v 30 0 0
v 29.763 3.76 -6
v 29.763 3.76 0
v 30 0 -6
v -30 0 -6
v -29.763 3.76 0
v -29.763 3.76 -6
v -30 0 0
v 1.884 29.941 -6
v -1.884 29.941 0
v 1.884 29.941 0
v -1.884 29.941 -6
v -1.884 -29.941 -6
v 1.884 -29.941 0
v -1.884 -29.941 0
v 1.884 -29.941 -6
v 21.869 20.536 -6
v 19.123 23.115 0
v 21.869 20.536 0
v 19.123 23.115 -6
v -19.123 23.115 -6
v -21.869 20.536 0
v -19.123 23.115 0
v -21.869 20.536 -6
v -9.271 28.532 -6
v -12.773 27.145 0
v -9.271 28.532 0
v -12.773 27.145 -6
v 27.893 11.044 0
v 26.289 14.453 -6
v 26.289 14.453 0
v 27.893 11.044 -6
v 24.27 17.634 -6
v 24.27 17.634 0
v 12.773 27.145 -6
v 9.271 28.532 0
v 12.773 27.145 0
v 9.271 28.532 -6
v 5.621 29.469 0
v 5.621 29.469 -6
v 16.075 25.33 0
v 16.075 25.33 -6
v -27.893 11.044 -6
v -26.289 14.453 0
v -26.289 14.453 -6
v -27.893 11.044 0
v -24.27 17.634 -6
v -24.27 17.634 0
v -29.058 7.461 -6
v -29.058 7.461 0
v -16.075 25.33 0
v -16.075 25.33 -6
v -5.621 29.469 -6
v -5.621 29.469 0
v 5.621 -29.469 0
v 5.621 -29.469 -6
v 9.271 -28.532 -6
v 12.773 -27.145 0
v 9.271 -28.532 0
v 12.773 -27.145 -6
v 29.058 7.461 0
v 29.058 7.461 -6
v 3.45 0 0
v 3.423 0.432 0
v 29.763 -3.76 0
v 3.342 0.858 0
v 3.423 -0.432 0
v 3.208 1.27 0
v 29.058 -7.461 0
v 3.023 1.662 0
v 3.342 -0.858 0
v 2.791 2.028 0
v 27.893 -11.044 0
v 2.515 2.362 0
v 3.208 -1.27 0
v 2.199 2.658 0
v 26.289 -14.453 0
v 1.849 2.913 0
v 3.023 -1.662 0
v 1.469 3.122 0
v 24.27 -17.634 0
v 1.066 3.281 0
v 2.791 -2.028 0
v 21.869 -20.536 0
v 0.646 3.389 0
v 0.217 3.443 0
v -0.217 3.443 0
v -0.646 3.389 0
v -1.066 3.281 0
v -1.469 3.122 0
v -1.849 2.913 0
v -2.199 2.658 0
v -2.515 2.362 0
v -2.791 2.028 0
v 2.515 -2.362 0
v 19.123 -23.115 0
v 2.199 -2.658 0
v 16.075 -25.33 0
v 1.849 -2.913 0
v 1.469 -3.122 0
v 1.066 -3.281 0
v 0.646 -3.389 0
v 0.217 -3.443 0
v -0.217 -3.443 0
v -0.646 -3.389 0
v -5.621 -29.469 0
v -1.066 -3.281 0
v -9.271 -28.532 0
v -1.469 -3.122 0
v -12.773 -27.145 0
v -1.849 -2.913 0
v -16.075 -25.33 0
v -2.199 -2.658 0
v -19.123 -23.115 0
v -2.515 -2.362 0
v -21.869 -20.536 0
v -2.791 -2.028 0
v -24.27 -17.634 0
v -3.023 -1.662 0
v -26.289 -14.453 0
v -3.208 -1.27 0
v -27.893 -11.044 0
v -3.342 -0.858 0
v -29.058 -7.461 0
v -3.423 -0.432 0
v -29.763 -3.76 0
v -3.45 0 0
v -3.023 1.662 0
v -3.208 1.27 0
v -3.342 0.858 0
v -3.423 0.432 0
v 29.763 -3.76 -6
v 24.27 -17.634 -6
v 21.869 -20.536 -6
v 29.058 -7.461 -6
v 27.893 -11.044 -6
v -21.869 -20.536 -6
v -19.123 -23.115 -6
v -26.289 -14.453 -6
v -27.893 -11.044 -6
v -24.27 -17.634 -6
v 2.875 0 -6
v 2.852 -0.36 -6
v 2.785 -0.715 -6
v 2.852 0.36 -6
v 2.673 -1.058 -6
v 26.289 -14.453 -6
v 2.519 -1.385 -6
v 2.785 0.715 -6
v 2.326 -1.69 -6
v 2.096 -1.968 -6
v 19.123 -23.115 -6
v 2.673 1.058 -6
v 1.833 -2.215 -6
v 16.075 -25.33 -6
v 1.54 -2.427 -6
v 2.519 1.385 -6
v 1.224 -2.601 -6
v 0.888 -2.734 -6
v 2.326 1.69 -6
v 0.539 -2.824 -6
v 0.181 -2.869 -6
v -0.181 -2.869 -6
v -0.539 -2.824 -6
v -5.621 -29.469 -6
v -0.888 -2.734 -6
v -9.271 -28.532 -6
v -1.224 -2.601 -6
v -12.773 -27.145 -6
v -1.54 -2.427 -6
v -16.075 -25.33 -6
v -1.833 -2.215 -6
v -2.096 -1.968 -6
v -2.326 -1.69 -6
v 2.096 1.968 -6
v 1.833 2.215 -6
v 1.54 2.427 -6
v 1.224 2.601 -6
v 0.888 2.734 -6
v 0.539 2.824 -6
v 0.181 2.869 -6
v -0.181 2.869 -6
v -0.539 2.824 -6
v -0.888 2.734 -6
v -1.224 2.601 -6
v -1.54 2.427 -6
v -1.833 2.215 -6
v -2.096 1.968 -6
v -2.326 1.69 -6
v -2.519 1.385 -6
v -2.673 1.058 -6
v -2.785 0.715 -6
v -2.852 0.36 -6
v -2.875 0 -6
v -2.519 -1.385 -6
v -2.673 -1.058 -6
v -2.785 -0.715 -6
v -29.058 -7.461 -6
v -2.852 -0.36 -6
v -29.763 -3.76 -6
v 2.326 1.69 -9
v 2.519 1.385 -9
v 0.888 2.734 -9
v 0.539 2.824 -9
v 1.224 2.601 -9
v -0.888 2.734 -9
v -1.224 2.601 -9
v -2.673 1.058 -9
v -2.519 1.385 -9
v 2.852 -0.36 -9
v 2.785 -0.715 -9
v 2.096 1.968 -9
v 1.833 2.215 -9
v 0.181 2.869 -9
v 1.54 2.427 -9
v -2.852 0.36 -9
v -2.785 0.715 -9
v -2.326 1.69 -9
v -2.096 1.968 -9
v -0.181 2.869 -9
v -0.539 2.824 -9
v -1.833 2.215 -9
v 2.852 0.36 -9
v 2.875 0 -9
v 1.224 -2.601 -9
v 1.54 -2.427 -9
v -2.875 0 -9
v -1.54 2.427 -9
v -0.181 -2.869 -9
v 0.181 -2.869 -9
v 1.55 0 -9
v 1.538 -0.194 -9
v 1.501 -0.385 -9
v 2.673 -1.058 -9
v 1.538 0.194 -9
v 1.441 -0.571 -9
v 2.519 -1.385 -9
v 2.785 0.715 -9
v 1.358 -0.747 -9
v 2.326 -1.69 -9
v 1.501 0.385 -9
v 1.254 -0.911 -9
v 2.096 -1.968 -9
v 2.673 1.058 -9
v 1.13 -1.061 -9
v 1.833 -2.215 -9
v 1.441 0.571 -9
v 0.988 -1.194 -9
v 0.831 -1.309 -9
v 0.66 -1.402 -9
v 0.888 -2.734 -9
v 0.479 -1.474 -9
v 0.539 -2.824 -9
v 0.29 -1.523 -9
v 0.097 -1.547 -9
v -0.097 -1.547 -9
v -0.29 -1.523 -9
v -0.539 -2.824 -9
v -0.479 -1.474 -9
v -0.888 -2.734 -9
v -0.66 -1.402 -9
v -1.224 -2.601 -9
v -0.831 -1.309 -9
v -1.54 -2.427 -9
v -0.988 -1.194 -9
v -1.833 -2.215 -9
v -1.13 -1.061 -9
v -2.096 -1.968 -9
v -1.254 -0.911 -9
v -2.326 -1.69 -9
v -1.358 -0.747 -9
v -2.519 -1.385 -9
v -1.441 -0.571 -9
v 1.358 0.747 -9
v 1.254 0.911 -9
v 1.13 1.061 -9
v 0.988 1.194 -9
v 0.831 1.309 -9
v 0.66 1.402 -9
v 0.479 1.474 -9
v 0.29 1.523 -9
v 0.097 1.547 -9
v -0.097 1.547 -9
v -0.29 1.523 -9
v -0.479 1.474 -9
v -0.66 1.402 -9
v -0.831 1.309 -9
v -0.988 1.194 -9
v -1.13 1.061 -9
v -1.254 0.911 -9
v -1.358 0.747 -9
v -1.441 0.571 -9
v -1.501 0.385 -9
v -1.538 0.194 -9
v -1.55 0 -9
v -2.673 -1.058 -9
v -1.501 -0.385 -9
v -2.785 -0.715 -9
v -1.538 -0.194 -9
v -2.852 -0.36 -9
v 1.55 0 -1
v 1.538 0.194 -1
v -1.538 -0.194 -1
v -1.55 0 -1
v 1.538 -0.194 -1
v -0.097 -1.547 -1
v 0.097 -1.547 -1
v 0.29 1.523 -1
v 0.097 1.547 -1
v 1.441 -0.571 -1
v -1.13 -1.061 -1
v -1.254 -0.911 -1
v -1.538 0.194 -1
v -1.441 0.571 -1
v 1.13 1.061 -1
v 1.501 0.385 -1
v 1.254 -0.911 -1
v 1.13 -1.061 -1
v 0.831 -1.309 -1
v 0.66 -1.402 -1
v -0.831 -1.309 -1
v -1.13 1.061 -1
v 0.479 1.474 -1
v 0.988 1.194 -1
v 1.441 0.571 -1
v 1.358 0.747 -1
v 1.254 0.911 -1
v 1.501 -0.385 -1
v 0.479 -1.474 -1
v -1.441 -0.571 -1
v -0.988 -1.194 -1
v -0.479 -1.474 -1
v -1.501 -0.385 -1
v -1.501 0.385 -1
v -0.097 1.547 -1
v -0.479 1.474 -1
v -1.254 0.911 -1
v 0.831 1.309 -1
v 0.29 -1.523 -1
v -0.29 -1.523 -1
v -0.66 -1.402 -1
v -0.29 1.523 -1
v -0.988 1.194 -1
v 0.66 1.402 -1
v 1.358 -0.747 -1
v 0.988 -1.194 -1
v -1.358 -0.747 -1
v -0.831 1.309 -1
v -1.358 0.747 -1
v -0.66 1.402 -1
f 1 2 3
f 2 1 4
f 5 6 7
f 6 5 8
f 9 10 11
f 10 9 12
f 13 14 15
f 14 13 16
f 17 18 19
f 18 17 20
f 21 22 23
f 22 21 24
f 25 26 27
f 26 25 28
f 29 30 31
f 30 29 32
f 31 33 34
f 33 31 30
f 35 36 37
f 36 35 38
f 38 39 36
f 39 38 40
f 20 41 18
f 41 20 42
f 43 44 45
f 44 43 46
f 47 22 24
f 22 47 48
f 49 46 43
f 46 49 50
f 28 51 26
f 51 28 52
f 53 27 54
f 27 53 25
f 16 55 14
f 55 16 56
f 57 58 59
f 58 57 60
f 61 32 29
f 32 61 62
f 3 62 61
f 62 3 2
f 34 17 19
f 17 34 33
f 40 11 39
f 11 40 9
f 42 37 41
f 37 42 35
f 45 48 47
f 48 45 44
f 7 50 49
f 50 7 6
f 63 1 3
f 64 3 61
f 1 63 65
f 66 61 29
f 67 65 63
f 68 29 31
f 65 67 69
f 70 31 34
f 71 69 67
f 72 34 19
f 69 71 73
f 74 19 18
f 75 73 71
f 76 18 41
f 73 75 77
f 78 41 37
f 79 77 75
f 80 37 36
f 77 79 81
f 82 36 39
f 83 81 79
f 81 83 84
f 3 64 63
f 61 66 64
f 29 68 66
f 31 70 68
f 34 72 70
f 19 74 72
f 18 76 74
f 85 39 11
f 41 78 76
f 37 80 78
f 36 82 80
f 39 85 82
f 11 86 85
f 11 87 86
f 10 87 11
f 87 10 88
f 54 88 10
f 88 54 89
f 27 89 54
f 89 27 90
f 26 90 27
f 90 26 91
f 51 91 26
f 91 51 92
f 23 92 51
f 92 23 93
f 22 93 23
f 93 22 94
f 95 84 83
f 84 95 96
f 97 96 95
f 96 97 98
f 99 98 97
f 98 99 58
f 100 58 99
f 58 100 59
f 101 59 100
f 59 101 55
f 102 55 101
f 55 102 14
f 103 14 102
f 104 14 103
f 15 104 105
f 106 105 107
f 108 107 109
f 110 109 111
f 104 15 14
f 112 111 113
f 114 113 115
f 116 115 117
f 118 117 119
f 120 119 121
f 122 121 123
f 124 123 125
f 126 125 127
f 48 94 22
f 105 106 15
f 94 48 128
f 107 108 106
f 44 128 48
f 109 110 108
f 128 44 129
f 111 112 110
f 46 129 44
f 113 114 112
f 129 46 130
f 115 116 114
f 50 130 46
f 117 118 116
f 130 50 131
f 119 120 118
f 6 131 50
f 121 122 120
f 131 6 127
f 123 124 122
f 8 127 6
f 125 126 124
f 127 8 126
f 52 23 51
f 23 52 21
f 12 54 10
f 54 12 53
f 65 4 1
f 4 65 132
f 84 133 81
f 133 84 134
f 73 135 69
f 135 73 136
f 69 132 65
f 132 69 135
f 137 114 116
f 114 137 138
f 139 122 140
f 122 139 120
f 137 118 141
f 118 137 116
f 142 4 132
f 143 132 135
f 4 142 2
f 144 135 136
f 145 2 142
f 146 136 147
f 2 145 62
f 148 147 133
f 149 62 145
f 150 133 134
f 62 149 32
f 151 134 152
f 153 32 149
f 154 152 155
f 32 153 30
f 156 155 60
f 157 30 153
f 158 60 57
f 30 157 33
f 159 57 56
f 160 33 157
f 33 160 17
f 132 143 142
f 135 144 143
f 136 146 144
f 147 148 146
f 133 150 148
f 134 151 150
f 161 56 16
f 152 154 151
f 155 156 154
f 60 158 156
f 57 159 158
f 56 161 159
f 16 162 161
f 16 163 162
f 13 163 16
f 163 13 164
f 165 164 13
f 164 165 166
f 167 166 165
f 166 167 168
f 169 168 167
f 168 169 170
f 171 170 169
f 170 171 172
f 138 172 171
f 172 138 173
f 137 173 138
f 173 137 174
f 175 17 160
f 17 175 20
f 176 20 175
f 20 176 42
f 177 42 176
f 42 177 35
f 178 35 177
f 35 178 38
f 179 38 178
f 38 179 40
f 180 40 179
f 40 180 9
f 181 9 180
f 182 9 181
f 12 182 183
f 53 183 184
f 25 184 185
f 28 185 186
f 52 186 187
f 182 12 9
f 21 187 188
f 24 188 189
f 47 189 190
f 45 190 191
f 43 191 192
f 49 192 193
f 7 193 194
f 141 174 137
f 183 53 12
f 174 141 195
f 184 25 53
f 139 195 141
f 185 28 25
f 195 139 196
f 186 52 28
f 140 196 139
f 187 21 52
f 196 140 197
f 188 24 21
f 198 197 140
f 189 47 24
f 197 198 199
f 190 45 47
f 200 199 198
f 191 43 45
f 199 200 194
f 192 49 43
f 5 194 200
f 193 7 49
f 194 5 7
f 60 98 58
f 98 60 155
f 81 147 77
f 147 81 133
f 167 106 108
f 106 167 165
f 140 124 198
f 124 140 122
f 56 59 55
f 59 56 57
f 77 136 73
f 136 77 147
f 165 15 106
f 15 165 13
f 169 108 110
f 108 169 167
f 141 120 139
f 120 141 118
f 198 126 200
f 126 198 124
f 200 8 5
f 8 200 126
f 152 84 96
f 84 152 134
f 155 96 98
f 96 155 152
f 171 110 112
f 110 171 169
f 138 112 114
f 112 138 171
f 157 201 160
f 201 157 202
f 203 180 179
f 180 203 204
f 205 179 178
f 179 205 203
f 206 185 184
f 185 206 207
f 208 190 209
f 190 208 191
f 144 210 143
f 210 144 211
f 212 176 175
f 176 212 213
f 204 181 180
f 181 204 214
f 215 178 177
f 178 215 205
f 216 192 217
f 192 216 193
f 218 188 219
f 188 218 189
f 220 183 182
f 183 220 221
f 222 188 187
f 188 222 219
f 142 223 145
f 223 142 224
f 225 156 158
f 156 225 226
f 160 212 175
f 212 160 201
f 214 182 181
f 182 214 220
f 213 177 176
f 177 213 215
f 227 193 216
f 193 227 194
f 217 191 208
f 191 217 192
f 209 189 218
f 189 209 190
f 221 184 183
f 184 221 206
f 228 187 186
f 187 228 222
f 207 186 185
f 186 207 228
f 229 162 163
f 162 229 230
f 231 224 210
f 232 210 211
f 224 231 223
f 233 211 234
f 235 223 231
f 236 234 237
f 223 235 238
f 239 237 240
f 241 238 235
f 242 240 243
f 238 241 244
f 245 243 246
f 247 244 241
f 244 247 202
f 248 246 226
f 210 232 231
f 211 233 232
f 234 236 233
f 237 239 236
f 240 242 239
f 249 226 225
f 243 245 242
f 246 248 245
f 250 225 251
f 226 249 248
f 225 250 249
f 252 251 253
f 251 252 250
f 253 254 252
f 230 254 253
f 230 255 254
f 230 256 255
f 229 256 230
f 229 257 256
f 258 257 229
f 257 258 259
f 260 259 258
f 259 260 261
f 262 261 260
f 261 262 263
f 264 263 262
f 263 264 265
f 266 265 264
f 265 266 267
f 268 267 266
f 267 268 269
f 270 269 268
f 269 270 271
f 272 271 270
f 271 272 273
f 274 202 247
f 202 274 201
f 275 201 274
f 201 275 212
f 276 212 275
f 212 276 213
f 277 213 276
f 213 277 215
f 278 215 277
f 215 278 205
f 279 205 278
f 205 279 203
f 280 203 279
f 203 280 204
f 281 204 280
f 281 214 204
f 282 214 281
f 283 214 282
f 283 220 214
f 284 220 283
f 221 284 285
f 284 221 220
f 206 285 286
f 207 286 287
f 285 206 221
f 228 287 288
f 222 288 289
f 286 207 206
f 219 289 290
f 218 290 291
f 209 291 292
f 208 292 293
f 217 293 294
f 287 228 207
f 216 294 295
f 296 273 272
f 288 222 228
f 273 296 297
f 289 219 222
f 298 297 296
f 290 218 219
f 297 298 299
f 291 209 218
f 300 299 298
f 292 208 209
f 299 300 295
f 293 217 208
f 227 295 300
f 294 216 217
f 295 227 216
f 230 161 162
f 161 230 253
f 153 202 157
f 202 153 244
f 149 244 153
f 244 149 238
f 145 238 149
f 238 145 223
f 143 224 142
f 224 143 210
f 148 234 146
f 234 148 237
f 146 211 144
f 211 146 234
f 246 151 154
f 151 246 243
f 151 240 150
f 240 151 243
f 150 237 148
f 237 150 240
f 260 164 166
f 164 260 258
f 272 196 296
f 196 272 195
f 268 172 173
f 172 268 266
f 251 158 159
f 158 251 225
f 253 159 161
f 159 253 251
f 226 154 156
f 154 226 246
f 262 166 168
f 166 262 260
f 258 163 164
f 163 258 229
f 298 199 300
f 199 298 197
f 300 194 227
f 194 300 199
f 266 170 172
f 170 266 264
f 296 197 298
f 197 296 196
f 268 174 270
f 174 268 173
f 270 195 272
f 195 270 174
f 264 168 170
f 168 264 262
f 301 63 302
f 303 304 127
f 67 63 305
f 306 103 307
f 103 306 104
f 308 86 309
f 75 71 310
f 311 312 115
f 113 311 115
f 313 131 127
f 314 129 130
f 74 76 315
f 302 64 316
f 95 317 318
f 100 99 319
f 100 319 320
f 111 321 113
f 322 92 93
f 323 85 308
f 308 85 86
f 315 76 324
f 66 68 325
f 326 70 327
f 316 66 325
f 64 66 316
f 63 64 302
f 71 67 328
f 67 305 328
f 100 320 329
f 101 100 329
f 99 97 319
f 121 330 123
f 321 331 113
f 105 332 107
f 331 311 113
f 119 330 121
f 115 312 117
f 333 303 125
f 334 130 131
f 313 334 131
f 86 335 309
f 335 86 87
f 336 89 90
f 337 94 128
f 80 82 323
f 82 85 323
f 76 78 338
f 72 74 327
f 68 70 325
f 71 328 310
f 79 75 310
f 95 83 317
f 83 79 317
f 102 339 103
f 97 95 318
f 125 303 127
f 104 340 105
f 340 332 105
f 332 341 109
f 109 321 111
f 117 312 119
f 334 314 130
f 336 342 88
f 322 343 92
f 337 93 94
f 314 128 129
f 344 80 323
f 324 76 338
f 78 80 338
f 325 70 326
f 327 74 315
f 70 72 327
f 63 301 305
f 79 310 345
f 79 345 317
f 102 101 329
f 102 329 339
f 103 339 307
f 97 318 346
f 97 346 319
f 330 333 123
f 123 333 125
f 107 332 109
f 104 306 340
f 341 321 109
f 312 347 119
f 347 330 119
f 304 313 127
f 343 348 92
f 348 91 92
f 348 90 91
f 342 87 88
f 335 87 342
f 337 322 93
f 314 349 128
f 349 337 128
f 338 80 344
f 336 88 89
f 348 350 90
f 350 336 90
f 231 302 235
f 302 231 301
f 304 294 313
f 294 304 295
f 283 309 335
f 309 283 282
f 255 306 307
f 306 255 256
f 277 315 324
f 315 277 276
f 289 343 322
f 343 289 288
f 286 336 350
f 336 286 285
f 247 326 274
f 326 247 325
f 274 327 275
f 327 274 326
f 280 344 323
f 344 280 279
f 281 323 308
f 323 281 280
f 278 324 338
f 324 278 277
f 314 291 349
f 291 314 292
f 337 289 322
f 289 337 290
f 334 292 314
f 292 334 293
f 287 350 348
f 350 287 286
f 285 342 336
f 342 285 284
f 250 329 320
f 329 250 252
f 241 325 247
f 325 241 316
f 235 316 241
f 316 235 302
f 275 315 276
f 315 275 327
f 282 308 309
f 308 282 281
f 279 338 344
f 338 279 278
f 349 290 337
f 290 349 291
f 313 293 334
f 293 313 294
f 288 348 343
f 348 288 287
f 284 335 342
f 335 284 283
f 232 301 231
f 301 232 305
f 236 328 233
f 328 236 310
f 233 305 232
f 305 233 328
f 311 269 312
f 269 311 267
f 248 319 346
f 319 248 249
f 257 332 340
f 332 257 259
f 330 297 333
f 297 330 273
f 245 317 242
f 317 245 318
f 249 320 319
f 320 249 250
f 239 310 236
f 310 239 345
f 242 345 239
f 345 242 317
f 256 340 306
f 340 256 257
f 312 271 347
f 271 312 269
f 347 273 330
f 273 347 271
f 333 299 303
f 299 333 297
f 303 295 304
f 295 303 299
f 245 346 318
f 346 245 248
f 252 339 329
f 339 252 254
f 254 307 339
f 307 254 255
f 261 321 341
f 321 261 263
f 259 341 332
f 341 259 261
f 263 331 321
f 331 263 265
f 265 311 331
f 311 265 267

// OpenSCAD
$fn = 50;


difference() {
	union() {
		translate(v = [0, 0, -6.0000000000]) {
			cylinder(h = 6, r = 30.0000000000);
		}
		translate(v = [0, 0, -9.0000000000]) {
			cylinder(h = 9, r = 2.8750000000);
		}
	}
	union() {
		translate(v = [0, 0, 0]) {
			rotate(a = [0, 0, 0]) {
				difference() {
					union() {
						translate(v = [0, 0, -9.0000000000]) {
							cylinder(h = 9, r = 1.2500000000);
						}
						translate(v = [0, 0, -1.0000000000]) {
							cylinder(h = 1.0000000000, r1 = 1.5500000000, r2 = 3.4500000000);
						}
						translate(v = [0, 0, -9.0000000000]) {
							cylinder(h = 9, r = 1.5500000000);
						}
						translate(v = [0, 0, -9.0000000000]) {
							cylinder(h = 9, r = 1.2500000000);
						}
					}
					union();
				}
			}
		}
	}
}
